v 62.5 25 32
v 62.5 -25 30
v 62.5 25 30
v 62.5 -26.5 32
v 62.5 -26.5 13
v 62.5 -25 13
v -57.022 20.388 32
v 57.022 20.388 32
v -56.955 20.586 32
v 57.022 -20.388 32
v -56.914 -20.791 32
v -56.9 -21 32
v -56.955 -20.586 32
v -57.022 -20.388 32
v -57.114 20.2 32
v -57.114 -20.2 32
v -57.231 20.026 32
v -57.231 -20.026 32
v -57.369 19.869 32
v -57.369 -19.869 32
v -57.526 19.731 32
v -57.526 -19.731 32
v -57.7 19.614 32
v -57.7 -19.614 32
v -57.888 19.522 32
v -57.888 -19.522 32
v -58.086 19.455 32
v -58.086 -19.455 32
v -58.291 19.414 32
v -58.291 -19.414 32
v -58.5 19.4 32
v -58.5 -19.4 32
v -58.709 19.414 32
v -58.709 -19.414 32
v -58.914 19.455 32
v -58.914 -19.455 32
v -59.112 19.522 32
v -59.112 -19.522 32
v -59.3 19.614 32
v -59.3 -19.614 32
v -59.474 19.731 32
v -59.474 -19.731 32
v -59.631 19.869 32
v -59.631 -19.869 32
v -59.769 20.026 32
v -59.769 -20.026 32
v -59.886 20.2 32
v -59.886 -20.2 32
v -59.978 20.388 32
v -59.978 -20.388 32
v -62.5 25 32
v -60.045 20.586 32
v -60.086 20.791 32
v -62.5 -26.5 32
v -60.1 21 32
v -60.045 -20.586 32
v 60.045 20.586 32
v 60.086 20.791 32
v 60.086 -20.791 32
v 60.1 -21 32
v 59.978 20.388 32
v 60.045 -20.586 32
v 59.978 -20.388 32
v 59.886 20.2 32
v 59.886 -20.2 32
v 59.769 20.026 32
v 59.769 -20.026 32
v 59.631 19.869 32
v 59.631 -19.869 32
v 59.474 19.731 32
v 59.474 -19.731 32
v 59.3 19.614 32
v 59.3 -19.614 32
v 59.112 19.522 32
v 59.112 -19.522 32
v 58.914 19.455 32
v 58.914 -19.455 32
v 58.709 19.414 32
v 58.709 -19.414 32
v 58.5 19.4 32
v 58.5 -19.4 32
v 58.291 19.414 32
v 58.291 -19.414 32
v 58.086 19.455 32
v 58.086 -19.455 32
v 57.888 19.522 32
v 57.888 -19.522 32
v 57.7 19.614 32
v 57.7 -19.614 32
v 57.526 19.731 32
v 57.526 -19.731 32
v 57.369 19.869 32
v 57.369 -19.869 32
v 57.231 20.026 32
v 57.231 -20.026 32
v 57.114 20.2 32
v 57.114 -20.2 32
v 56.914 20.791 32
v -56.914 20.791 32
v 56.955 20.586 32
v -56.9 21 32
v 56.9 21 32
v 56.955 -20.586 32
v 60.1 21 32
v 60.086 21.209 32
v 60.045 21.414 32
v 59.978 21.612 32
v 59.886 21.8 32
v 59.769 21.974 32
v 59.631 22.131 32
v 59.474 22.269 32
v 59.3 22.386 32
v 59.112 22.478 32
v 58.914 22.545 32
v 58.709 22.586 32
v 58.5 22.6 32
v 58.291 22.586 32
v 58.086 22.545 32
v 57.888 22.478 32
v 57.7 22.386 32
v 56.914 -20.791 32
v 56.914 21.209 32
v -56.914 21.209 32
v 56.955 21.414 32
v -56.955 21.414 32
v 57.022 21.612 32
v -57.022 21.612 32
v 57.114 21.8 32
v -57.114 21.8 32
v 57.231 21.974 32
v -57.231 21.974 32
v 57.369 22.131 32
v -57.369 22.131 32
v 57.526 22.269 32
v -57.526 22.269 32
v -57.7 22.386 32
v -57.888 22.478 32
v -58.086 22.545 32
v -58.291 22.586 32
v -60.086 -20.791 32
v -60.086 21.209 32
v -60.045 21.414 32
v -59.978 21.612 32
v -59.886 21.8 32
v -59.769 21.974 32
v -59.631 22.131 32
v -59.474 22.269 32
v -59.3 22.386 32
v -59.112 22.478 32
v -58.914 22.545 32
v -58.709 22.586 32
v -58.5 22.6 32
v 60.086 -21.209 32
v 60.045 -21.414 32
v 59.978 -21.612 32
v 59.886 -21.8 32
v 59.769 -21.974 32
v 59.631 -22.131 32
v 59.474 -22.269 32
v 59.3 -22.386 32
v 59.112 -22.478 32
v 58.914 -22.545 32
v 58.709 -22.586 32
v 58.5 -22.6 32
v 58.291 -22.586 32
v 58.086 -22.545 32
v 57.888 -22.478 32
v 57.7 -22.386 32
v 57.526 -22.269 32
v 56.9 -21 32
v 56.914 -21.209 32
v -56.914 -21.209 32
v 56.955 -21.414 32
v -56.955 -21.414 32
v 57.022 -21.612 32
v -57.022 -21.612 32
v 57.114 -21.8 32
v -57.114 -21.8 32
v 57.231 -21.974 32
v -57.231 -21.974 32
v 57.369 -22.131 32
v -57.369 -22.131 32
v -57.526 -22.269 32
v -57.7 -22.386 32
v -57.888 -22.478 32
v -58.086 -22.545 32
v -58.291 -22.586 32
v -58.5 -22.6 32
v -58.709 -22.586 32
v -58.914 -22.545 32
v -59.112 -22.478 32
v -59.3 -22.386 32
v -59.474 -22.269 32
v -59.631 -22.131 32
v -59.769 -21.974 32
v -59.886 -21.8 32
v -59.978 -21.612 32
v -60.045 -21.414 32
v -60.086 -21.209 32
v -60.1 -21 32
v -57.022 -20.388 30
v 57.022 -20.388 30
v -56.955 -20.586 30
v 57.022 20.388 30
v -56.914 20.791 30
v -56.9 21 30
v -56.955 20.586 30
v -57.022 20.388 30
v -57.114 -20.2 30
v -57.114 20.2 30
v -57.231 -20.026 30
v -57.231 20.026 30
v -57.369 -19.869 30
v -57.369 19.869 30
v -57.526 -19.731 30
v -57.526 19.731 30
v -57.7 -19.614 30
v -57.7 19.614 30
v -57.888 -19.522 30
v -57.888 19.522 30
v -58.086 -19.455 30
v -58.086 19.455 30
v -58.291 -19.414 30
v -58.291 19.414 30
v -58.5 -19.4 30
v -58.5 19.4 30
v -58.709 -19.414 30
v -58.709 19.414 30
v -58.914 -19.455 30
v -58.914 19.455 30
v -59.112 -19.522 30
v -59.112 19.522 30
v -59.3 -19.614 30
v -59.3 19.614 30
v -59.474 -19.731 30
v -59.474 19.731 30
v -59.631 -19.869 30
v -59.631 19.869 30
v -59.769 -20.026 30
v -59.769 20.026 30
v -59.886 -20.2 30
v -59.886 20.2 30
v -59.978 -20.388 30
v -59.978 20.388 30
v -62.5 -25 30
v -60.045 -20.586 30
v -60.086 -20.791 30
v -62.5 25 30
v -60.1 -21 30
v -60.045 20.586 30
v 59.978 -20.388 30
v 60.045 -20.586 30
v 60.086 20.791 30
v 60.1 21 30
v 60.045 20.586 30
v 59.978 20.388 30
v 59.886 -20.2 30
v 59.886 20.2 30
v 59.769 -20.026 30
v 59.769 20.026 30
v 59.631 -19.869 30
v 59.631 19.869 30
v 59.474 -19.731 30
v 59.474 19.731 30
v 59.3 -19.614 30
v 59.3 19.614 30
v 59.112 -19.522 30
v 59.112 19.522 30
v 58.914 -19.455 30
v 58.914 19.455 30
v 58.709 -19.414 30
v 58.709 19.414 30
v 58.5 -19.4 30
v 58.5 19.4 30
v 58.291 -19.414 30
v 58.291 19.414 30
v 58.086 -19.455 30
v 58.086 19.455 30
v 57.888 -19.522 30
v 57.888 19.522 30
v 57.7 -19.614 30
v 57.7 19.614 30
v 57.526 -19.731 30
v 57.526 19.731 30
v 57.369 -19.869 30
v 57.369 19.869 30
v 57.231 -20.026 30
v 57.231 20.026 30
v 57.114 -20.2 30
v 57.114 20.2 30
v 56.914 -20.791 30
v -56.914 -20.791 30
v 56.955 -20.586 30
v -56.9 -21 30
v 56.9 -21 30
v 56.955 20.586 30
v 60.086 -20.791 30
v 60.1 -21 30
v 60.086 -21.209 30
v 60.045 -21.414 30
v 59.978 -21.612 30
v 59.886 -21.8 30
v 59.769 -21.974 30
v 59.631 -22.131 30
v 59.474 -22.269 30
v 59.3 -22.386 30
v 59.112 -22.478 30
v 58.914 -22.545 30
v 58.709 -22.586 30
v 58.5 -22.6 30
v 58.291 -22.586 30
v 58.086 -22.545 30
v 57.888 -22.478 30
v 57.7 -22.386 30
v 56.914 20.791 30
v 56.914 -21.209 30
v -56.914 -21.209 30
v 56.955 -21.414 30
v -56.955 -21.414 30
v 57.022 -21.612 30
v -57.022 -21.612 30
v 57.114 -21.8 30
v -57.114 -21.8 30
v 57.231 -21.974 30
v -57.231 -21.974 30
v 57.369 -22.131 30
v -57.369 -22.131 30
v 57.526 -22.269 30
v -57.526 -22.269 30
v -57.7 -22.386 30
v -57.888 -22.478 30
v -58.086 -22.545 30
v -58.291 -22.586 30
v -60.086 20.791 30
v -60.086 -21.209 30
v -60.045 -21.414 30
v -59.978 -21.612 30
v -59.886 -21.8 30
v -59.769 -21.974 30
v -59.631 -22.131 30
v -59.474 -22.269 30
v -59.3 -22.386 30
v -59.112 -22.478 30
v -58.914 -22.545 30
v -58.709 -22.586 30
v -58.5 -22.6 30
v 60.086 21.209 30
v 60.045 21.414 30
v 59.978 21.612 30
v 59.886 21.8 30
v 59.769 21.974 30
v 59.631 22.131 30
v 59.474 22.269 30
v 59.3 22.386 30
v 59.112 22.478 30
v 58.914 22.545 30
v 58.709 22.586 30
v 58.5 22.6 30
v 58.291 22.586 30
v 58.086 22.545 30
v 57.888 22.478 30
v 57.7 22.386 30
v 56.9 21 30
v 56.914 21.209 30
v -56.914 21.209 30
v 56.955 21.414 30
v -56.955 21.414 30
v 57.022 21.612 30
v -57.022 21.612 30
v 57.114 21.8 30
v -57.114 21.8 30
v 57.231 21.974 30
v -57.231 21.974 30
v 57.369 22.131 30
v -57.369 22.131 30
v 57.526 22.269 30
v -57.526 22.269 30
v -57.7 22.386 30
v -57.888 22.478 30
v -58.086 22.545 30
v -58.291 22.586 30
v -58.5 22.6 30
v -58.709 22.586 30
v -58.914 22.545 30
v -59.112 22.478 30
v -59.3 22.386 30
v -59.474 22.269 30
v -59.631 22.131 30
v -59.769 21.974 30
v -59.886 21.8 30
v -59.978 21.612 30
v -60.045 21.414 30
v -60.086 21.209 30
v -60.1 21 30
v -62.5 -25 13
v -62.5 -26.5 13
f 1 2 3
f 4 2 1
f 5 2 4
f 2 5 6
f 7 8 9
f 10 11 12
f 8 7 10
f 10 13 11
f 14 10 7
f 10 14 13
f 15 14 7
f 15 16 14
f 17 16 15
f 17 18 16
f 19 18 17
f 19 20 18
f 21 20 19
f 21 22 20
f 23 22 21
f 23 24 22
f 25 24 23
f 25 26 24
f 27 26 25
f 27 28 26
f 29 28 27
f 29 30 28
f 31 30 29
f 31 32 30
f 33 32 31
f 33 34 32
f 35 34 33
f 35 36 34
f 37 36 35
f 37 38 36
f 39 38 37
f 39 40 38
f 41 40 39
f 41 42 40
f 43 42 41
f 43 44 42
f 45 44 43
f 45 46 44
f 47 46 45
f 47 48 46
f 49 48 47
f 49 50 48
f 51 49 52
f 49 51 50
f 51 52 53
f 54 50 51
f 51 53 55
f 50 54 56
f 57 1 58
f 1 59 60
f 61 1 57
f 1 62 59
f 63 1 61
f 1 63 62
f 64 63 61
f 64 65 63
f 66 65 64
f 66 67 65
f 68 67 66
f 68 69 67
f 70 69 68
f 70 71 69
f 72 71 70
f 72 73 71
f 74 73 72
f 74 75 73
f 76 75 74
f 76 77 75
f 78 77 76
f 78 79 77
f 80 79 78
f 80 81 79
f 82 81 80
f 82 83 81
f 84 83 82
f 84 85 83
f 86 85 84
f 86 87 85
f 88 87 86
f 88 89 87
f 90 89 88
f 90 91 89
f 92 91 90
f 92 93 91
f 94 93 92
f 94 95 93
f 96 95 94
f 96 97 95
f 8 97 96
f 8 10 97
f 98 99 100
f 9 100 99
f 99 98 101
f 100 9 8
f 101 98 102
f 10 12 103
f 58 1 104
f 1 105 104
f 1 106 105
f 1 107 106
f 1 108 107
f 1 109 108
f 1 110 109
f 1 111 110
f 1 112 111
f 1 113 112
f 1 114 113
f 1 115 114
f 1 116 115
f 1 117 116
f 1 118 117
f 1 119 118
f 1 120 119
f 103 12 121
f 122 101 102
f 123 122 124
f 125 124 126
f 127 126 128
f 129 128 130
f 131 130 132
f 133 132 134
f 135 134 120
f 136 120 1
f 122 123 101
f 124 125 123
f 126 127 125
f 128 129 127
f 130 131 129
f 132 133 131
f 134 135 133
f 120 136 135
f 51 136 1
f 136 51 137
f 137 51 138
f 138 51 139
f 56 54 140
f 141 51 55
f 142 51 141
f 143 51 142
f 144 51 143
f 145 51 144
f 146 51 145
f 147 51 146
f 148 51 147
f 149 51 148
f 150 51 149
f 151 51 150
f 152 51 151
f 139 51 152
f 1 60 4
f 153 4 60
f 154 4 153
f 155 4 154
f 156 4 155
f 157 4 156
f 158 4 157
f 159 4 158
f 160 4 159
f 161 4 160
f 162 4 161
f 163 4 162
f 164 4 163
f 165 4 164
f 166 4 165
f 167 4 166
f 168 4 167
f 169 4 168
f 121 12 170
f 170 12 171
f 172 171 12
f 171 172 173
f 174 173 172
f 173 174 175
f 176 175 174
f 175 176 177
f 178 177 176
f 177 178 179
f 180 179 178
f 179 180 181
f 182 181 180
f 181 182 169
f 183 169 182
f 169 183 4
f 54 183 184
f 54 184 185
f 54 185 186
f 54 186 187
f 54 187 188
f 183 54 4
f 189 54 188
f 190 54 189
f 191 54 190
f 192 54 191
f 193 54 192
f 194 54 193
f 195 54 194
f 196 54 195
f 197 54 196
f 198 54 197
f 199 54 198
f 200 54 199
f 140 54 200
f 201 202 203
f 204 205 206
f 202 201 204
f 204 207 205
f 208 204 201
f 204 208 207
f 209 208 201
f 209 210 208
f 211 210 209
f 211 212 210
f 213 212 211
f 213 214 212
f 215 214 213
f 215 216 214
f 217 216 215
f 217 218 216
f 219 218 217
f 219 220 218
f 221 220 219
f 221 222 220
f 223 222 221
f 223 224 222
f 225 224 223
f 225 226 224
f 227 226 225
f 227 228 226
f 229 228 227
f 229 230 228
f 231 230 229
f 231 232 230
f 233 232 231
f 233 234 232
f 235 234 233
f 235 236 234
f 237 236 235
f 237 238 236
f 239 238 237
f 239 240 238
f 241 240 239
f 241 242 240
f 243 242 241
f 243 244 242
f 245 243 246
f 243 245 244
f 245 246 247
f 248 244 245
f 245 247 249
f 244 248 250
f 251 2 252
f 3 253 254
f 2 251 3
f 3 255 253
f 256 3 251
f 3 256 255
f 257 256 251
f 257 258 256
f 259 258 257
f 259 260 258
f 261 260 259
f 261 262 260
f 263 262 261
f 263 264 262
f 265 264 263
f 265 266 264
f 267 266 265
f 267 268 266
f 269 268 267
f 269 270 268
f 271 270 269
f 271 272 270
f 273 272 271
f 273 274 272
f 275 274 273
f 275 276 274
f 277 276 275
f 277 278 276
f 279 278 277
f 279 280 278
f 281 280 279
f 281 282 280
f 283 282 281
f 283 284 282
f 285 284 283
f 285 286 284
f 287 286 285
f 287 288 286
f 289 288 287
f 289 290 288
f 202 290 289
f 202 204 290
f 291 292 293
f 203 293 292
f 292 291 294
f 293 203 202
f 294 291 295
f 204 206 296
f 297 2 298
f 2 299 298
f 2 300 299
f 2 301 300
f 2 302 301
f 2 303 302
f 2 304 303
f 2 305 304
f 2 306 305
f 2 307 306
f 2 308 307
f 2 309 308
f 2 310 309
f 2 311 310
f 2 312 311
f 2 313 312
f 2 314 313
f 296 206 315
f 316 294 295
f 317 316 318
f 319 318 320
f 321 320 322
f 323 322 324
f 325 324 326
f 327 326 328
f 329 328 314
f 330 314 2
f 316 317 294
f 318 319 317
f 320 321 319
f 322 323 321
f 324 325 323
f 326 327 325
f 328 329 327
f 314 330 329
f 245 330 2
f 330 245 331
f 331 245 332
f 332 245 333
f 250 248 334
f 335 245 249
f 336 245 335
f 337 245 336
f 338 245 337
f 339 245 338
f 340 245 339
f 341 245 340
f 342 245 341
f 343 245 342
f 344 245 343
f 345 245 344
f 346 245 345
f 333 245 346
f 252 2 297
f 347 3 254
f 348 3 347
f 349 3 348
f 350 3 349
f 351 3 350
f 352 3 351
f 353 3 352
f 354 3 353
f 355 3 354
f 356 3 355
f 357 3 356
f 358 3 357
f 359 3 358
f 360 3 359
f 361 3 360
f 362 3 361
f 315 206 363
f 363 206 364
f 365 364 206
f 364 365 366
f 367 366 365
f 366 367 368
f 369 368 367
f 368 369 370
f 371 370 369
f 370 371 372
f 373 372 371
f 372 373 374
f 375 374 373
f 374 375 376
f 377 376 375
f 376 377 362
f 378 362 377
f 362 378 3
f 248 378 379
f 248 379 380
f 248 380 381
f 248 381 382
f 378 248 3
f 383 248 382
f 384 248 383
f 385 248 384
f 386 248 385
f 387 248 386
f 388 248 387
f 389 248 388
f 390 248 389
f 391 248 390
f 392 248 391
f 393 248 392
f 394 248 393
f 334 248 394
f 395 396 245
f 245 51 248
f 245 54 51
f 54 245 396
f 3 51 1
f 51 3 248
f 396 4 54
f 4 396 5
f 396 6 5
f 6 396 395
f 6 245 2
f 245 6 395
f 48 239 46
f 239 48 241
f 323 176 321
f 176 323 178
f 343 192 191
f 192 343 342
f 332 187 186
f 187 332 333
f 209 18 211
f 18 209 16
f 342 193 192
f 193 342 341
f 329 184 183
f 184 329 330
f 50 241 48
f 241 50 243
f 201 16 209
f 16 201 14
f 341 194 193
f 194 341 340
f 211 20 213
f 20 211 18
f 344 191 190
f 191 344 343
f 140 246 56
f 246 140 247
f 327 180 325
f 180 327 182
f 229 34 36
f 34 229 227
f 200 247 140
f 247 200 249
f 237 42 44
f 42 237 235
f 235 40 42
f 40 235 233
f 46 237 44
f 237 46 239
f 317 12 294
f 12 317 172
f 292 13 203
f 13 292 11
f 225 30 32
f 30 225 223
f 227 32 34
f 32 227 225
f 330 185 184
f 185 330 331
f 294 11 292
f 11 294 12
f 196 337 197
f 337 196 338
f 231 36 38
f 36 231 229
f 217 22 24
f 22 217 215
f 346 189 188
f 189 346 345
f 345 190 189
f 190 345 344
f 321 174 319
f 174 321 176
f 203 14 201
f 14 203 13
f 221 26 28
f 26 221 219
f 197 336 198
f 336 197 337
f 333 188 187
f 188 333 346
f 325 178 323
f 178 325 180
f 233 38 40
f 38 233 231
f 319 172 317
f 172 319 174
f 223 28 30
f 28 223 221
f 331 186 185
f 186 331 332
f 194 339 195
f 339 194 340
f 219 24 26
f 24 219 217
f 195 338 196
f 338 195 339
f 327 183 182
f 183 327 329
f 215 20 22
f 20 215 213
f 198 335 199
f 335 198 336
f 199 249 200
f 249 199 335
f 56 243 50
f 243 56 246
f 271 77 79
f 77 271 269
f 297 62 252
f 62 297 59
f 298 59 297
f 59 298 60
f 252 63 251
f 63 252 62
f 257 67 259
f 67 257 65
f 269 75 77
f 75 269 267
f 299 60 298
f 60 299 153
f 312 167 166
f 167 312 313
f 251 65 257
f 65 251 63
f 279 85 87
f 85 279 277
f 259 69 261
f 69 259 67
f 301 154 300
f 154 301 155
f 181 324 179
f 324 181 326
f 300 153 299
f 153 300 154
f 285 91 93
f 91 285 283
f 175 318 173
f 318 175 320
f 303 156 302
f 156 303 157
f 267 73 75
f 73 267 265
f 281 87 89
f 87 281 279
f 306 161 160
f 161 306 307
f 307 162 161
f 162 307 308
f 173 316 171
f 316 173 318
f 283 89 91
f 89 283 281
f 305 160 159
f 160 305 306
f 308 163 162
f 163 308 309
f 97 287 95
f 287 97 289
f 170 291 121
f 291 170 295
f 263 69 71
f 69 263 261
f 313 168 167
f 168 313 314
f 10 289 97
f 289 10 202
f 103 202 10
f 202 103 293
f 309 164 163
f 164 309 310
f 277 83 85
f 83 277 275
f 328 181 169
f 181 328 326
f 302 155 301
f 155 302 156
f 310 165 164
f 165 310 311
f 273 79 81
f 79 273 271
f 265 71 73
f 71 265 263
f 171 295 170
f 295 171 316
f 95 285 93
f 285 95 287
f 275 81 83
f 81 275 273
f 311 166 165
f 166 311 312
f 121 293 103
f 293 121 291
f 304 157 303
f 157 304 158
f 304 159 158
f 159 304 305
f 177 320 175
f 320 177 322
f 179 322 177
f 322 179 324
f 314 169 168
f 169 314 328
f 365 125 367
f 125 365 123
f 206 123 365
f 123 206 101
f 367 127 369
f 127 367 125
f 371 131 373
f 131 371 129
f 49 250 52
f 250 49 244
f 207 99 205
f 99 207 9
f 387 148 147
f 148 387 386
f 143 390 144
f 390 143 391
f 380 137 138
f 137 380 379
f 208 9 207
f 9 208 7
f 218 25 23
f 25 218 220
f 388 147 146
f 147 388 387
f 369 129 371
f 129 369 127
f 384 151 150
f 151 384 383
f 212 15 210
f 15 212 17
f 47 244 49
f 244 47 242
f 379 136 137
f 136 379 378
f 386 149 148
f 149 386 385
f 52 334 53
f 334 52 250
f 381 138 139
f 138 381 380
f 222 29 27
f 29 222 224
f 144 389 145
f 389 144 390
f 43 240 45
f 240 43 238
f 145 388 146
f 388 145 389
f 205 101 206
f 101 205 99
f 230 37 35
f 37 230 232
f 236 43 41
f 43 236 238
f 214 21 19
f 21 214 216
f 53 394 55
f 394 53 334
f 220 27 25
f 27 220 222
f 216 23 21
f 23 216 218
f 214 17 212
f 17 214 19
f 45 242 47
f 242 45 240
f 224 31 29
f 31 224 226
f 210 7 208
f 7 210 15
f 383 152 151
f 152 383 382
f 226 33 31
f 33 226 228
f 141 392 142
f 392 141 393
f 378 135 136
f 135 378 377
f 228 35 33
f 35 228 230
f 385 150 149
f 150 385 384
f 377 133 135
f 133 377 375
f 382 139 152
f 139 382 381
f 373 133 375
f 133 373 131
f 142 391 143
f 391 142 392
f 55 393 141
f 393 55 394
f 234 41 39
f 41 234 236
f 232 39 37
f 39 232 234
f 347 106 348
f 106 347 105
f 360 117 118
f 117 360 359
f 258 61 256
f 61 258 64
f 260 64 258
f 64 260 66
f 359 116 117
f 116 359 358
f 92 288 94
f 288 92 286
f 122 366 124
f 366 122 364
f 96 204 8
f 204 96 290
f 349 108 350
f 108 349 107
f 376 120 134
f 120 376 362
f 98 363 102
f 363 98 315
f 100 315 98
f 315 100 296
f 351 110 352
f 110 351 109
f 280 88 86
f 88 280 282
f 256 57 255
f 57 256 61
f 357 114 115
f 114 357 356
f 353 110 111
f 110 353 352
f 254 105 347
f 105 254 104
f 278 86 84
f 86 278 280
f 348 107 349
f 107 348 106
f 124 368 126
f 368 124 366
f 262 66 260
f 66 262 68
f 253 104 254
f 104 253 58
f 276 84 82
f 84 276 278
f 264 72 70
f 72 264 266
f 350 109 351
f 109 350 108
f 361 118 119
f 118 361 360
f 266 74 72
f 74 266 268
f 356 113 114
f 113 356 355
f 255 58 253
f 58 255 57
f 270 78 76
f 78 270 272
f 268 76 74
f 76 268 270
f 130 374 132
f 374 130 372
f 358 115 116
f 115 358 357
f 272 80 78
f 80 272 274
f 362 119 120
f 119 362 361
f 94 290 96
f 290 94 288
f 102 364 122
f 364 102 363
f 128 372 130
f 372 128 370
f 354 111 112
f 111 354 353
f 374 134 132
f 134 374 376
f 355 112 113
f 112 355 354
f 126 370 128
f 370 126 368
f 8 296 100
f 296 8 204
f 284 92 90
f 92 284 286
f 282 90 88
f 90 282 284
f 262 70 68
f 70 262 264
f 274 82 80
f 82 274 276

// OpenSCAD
/* Box + L자 뚜껑 (위에서 나사 체결) */

// ===== 기본 박스 치수 =====
L = 125;  // X
W = 50;   // Y
H = 30;   // Z
t = 1.5;  // 두께

// ===== 뚜껑 파라미터 =====
plate_t  = 2;   // 상판 두께
flap_t   = 1.5;   // -Y 측판 두께
flap_bot = 3;   // 측판 아래 끝 Z
screw_d  = 3.2; // 나사 구멍 지름
SHOW_BOX = false; // STL 뽑을 때는 false

screw_xys = [
  [-L/2+4, -W/2+4], [ L/2-4, -W/2+4],
  [-L/2+4,  W/2-4], [ L/2-4,  W/2-4]
];

// ===== 박스 =====
module wire_box() {
    difference() {
        translate([-L/2, -W/2, 0])
            cube([L, W, H]);
        translate([-L/2 + t, -W/2 + t, t])
            cube([L - 2*t, W - 2*t, H - t + 1]);
        translate([-L/2 + t, -W/2 + t-5, t+5])
            cube([L - 2*t, W - 2*t, H - t + 1]);
    }
    for (x = [-L/2+4, L/2-4], y = [-W/2+4, W/2-4]) {
        translate([x,y,0]) box_pilla(H);
    }
}

module box_pilla(H) {
    translate([0,0,H/2]) difference() {
        cube([8,8,H], center=true);
        cylinder(H+2, 2, 2, center=true, $fn=48);
    }
}

// ===== 뚜껑 =====
module box_lid() {
    difference() {
        union() {
            // 상판: 윗면 전체 커버 (-Y 쪽은 측판과 일체)
            translate([-L/2, -W/2 - flap_t, H])
                cube([L, W + flap_t, plate_t]);
            // -Y 측판: 열린 면을 바깥에서 덮음
            translate([-L/2, -W/2 - flap_t, flap_bot+10])
                cube([L, flap_t, H + 1 - flap_bot-9]);
        }
        // 위에서 체결하는 나사 구멍 φ3.2 (코너 필라 중심)
        for (xy = screw_xys)
            translate([xy[0], xy[1], H - 1])
                cylinder(plate_t + 2, d=screw_d, $fn=48);
    }
}

if (SHOW_BOX) wire_box();
box_lid();
